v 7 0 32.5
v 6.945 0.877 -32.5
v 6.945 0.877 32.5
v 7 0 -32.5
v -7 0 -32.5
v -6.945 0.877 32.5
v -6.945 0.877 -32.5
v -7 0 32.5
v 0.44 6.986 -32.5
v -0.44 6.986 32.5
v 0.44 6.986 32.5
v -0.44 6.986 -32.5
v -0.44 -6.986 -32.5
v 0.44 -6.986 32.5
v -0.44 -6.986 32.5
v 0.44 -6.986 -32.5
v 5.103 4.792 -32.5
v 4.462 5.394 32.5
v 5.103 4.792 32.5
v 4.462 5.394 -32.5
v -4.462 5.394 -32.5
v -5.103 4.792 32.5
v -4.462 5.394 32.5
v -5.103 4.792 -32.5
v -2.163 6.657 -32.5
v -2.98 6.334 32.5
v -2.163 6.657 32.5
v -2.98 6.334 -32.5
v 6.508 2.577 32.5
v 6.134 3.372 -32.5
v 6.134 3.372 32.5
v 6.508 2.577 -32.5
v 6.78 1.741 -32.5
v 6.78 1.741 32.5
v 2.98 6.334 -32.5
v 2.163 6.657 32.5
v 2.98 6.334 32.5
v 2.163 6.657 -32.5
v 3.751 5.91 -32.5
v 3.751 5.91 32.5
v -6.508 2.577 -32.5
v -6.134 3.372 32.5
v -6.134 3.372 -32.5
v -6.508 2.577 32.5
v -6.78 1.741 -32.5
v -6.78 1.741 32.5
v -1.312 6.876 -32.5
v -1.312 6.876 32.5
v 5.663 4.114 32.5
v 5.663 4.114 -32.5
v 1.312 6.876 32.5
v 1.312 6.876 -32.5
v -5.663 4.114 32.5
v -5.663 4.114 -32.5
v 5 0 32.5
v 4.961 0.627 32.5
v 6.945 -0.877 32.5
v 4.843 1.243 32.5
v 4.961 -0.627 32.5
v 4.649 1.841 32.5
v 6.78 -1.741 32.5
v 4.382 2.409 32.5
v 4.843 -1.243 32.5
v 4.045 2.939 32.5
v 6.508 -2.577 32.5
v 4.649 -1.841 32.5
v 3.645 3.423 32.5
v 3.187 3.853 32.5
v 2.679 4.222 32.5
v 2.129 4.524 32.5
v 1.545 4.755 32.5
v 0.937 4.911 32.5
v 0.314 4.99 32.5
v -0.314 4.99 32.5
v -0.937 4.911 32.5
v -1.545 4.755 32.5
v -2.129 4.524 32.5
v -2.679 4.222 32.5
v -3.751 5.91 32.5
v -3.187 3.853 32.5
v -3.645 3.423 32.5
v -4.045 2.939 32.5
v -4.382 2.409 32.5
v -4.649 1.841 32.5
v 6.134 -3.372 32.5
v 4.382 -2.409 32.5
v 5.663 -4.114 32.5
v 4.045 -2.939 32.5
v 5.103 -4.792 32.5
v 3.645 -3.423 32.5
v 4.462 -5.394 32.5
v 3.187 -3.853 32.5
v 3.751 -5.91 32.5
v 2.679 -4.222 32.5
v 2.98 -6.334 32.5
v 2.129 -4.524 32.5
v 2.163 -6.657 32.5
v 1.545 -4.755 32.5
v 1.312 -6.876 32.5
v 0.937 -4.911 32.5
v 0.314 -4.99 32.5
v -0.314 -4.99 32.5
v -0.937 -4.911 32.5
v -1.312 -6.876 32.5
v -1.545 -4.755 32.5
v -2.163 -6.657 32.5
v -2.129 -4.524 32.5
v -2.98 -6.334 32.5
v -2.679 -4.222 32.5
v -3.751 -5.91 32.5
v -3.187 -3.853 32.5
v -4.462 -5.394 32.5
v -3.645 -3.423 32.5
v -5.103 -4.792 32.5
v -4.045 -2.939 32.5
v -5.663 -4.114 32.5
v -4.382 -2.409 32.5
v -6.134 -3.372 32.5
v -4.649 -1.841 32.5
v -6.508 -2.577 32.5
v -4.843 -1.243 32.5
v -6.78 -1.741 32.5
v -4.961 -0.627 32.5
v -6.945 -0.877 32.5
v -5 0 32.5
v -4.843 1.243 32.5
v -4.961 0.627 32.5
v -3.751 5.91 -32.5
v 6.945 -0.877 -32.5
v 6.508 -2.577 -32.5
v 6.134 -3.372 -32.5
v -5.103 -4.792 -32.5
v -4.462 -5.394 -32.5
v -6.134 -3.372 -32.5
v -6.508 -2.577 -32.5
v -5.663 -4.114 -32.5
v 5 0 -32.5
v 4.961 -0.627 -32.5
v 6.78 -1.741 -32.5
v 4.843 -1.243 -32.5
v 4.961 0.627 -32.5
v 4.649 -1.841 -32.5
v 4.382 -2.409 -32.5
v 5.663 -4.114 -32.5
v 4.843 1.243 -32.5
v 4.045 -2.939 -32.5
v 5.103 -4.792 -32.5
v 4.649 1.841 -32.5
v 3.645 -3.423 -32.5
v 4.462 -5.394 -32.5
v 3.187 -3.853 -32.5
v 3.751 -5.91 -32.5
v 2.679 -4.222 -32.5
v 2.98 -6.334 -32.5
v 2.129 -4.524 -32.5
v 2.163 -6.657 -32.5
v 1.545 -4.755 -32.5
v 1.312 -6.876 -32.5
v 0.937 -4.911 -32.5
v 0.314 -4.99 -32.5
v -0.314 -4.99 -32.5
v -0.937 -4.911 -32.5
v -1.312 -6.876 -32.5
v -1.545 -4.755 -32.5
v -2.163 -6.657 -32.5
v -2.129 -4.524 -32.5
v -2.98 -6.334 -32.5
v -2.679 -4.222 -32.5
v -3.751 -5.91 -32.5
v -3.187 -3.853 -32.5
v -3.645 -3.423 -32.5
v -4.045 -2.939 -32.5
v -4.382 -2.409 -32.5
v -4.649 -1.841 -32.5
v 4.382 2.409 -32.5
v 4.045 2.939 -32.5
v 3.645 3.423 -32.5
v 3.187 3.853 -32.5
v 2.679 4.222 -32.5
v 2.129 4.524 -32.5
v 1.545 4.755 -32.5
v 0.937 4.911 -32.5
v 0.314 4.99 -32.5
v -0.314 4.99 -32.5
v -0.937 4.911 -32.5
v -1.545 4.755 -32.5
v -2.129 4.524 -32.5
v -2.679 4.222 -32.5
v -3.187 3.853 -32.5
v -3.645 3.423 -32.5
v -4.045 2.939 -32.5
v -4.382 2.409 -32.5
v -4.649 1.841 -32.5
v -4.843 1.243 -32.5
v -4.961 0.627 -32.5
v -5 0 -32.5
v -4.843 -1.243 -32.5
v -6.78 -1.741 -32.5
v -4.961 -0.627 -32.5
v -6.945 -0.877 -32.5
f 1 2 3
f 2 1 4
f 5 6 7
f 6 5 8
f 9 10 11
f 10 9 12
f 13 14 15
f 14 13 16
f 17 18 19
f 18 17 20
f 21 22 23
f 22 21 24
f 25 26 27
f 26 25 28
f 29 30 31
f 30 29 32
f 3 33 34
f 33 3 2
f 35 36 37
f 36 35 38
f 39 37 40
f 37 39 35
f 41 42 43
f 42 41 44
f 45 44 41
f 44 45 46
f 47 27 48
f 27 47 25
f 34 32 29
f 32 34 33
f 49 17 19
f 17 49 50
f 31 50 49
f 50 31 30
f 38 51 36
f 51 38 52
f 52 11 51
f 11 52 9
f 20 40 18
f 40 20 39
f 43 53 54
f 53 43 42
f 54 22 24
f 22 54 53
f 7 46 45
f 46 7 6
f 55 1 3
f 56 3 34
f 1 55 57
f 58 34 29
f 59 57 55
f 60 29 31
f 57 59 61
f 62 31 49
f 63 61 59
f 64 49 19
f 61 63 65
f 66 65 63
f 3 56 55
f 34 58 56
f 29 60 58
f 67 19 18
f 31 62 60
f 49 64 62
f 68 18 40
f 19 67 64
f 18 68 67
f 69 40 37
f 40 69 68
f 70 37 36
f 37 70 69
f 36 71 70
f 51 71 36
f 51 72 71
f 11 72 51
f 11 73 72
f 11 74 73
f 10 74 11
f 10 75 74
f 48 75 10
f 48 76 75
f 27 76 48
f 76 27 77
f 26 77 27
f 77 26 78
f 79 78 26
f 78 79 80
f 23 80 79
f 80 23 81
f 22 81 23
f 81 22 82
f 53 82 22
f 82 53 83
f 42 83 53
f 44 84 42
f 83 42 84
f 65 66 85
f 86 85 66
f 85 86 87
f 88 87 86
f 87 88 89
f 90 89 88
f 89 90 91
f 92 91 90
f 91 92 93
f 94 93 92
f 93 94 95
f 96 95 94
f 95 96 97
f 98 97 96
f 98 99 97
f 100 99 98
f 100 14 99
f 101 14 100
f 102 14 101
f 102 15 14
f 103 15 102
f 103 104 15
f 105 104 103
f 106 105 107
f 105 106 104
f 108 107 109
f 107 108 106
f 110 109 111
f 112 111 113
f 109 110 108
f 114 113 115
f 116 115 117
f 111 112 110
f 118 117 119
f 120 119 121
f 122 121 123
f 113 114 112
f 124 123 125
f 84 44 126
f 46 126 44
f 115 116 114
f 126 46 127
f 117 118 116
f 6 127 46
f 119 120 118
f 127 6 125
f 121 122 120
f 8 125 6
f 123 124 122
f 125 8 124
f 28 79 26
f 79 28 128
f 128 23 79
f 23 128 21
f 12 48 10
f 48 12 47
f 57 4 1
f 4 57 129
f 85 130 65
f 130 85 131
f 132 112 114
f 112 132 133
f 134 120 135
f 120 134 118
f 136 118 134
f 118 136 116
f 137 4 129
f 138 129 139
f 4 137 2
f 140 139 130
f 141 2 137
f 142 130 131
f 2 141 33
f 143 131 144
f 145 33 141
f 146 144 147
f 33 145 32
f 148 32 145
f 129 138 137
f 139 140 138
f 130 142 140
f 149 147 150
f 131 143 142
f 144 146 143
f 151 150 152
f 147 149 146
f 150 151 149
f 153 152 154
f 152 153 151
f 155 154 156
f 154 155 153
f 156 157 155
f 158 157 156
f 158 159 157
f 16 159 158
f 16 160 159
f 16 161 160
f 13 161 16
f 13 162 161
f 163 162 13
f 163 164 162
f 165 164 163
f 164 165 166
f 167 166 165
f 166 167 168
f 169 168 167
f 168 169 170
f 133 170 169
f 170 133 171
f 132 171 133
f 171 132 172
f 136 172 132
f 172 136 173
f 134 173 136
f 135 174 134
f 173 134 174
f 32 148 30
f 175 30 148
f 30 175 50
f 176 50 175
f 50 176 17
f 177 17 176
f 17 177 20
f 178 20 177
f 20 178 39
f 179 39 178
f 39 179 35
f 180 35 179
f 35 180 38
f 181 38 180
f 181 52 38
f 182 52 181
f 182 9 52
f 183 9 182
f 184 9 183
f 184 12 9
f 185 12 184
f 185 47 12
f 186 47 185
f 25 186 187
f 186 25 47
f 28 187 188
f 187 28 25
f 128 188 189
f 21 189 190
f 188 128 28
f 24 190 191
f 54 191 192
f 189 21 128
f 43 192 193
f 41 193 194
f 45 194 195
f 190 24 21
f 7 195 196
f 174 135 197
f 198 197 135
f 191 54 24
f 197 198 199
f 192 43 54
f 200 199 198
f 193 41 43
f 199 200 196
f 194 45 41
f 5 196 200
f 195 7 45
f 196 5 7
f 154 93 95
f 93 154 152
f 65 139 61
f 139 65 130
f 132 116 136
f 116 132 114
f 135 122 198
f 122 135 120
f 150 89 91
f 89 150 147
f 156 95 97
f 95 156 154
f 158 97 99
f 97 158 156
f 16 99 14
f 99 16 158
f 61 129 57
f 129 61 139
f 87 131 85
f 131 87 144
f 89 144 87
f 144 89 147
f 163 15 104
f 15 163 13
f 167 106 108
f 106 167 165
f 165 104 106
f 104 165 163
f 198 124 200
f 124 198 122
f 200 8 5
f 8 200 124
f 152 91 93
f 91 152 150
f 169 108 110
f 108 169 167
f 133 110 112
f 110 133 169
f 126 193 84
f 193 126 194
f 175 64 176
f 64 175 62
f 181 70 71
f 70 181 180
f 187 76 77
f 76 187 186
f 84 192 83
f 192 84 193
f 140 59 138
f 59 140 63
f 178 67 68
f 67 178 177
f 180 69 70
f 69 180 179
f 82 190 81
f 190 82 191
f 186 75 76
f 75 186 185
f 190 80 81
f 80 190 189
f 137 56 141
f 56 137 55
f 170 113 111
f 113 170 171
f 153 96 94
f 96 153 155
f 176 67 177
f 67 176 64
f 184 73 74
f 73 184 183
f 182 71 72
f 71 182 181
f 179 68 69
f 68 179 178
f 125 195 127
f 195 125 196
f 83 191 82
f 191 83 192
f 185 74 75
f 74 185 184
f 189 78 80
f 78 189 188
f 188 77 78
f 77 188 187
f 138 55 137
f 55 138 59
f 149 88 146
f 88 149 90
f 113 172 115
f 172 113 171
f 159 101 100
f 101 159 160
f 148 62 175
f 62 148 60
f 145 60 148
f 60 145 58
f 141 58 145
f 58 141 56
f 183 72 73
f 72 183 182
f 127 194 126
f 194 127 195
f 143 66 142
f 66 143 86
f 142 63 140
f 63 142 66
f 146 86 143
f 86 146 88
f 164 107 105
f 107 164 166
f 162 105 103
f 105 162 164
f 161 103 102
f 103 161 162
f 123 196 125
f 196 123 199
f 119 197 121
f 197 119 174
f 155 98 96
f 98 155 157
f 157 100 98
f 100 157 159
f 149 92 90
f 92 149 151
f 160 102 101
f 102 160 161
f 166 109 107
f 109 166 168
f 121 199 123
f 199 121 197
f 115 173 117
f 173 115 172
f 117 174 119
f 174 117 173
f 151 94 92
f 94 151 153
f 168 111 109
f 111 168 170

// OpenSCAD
$fn = 50;


difference() {
	union() {
		translate(v = [0, 0, -32.5000000000]) {
			cylinder(h = 65, r = 7.0000000000);
		}
	}
	union() {
		translate(v = [0, 0, -100.0000000000]) {
			cylinder(h = 200, r = 5);
		}
	}
}
